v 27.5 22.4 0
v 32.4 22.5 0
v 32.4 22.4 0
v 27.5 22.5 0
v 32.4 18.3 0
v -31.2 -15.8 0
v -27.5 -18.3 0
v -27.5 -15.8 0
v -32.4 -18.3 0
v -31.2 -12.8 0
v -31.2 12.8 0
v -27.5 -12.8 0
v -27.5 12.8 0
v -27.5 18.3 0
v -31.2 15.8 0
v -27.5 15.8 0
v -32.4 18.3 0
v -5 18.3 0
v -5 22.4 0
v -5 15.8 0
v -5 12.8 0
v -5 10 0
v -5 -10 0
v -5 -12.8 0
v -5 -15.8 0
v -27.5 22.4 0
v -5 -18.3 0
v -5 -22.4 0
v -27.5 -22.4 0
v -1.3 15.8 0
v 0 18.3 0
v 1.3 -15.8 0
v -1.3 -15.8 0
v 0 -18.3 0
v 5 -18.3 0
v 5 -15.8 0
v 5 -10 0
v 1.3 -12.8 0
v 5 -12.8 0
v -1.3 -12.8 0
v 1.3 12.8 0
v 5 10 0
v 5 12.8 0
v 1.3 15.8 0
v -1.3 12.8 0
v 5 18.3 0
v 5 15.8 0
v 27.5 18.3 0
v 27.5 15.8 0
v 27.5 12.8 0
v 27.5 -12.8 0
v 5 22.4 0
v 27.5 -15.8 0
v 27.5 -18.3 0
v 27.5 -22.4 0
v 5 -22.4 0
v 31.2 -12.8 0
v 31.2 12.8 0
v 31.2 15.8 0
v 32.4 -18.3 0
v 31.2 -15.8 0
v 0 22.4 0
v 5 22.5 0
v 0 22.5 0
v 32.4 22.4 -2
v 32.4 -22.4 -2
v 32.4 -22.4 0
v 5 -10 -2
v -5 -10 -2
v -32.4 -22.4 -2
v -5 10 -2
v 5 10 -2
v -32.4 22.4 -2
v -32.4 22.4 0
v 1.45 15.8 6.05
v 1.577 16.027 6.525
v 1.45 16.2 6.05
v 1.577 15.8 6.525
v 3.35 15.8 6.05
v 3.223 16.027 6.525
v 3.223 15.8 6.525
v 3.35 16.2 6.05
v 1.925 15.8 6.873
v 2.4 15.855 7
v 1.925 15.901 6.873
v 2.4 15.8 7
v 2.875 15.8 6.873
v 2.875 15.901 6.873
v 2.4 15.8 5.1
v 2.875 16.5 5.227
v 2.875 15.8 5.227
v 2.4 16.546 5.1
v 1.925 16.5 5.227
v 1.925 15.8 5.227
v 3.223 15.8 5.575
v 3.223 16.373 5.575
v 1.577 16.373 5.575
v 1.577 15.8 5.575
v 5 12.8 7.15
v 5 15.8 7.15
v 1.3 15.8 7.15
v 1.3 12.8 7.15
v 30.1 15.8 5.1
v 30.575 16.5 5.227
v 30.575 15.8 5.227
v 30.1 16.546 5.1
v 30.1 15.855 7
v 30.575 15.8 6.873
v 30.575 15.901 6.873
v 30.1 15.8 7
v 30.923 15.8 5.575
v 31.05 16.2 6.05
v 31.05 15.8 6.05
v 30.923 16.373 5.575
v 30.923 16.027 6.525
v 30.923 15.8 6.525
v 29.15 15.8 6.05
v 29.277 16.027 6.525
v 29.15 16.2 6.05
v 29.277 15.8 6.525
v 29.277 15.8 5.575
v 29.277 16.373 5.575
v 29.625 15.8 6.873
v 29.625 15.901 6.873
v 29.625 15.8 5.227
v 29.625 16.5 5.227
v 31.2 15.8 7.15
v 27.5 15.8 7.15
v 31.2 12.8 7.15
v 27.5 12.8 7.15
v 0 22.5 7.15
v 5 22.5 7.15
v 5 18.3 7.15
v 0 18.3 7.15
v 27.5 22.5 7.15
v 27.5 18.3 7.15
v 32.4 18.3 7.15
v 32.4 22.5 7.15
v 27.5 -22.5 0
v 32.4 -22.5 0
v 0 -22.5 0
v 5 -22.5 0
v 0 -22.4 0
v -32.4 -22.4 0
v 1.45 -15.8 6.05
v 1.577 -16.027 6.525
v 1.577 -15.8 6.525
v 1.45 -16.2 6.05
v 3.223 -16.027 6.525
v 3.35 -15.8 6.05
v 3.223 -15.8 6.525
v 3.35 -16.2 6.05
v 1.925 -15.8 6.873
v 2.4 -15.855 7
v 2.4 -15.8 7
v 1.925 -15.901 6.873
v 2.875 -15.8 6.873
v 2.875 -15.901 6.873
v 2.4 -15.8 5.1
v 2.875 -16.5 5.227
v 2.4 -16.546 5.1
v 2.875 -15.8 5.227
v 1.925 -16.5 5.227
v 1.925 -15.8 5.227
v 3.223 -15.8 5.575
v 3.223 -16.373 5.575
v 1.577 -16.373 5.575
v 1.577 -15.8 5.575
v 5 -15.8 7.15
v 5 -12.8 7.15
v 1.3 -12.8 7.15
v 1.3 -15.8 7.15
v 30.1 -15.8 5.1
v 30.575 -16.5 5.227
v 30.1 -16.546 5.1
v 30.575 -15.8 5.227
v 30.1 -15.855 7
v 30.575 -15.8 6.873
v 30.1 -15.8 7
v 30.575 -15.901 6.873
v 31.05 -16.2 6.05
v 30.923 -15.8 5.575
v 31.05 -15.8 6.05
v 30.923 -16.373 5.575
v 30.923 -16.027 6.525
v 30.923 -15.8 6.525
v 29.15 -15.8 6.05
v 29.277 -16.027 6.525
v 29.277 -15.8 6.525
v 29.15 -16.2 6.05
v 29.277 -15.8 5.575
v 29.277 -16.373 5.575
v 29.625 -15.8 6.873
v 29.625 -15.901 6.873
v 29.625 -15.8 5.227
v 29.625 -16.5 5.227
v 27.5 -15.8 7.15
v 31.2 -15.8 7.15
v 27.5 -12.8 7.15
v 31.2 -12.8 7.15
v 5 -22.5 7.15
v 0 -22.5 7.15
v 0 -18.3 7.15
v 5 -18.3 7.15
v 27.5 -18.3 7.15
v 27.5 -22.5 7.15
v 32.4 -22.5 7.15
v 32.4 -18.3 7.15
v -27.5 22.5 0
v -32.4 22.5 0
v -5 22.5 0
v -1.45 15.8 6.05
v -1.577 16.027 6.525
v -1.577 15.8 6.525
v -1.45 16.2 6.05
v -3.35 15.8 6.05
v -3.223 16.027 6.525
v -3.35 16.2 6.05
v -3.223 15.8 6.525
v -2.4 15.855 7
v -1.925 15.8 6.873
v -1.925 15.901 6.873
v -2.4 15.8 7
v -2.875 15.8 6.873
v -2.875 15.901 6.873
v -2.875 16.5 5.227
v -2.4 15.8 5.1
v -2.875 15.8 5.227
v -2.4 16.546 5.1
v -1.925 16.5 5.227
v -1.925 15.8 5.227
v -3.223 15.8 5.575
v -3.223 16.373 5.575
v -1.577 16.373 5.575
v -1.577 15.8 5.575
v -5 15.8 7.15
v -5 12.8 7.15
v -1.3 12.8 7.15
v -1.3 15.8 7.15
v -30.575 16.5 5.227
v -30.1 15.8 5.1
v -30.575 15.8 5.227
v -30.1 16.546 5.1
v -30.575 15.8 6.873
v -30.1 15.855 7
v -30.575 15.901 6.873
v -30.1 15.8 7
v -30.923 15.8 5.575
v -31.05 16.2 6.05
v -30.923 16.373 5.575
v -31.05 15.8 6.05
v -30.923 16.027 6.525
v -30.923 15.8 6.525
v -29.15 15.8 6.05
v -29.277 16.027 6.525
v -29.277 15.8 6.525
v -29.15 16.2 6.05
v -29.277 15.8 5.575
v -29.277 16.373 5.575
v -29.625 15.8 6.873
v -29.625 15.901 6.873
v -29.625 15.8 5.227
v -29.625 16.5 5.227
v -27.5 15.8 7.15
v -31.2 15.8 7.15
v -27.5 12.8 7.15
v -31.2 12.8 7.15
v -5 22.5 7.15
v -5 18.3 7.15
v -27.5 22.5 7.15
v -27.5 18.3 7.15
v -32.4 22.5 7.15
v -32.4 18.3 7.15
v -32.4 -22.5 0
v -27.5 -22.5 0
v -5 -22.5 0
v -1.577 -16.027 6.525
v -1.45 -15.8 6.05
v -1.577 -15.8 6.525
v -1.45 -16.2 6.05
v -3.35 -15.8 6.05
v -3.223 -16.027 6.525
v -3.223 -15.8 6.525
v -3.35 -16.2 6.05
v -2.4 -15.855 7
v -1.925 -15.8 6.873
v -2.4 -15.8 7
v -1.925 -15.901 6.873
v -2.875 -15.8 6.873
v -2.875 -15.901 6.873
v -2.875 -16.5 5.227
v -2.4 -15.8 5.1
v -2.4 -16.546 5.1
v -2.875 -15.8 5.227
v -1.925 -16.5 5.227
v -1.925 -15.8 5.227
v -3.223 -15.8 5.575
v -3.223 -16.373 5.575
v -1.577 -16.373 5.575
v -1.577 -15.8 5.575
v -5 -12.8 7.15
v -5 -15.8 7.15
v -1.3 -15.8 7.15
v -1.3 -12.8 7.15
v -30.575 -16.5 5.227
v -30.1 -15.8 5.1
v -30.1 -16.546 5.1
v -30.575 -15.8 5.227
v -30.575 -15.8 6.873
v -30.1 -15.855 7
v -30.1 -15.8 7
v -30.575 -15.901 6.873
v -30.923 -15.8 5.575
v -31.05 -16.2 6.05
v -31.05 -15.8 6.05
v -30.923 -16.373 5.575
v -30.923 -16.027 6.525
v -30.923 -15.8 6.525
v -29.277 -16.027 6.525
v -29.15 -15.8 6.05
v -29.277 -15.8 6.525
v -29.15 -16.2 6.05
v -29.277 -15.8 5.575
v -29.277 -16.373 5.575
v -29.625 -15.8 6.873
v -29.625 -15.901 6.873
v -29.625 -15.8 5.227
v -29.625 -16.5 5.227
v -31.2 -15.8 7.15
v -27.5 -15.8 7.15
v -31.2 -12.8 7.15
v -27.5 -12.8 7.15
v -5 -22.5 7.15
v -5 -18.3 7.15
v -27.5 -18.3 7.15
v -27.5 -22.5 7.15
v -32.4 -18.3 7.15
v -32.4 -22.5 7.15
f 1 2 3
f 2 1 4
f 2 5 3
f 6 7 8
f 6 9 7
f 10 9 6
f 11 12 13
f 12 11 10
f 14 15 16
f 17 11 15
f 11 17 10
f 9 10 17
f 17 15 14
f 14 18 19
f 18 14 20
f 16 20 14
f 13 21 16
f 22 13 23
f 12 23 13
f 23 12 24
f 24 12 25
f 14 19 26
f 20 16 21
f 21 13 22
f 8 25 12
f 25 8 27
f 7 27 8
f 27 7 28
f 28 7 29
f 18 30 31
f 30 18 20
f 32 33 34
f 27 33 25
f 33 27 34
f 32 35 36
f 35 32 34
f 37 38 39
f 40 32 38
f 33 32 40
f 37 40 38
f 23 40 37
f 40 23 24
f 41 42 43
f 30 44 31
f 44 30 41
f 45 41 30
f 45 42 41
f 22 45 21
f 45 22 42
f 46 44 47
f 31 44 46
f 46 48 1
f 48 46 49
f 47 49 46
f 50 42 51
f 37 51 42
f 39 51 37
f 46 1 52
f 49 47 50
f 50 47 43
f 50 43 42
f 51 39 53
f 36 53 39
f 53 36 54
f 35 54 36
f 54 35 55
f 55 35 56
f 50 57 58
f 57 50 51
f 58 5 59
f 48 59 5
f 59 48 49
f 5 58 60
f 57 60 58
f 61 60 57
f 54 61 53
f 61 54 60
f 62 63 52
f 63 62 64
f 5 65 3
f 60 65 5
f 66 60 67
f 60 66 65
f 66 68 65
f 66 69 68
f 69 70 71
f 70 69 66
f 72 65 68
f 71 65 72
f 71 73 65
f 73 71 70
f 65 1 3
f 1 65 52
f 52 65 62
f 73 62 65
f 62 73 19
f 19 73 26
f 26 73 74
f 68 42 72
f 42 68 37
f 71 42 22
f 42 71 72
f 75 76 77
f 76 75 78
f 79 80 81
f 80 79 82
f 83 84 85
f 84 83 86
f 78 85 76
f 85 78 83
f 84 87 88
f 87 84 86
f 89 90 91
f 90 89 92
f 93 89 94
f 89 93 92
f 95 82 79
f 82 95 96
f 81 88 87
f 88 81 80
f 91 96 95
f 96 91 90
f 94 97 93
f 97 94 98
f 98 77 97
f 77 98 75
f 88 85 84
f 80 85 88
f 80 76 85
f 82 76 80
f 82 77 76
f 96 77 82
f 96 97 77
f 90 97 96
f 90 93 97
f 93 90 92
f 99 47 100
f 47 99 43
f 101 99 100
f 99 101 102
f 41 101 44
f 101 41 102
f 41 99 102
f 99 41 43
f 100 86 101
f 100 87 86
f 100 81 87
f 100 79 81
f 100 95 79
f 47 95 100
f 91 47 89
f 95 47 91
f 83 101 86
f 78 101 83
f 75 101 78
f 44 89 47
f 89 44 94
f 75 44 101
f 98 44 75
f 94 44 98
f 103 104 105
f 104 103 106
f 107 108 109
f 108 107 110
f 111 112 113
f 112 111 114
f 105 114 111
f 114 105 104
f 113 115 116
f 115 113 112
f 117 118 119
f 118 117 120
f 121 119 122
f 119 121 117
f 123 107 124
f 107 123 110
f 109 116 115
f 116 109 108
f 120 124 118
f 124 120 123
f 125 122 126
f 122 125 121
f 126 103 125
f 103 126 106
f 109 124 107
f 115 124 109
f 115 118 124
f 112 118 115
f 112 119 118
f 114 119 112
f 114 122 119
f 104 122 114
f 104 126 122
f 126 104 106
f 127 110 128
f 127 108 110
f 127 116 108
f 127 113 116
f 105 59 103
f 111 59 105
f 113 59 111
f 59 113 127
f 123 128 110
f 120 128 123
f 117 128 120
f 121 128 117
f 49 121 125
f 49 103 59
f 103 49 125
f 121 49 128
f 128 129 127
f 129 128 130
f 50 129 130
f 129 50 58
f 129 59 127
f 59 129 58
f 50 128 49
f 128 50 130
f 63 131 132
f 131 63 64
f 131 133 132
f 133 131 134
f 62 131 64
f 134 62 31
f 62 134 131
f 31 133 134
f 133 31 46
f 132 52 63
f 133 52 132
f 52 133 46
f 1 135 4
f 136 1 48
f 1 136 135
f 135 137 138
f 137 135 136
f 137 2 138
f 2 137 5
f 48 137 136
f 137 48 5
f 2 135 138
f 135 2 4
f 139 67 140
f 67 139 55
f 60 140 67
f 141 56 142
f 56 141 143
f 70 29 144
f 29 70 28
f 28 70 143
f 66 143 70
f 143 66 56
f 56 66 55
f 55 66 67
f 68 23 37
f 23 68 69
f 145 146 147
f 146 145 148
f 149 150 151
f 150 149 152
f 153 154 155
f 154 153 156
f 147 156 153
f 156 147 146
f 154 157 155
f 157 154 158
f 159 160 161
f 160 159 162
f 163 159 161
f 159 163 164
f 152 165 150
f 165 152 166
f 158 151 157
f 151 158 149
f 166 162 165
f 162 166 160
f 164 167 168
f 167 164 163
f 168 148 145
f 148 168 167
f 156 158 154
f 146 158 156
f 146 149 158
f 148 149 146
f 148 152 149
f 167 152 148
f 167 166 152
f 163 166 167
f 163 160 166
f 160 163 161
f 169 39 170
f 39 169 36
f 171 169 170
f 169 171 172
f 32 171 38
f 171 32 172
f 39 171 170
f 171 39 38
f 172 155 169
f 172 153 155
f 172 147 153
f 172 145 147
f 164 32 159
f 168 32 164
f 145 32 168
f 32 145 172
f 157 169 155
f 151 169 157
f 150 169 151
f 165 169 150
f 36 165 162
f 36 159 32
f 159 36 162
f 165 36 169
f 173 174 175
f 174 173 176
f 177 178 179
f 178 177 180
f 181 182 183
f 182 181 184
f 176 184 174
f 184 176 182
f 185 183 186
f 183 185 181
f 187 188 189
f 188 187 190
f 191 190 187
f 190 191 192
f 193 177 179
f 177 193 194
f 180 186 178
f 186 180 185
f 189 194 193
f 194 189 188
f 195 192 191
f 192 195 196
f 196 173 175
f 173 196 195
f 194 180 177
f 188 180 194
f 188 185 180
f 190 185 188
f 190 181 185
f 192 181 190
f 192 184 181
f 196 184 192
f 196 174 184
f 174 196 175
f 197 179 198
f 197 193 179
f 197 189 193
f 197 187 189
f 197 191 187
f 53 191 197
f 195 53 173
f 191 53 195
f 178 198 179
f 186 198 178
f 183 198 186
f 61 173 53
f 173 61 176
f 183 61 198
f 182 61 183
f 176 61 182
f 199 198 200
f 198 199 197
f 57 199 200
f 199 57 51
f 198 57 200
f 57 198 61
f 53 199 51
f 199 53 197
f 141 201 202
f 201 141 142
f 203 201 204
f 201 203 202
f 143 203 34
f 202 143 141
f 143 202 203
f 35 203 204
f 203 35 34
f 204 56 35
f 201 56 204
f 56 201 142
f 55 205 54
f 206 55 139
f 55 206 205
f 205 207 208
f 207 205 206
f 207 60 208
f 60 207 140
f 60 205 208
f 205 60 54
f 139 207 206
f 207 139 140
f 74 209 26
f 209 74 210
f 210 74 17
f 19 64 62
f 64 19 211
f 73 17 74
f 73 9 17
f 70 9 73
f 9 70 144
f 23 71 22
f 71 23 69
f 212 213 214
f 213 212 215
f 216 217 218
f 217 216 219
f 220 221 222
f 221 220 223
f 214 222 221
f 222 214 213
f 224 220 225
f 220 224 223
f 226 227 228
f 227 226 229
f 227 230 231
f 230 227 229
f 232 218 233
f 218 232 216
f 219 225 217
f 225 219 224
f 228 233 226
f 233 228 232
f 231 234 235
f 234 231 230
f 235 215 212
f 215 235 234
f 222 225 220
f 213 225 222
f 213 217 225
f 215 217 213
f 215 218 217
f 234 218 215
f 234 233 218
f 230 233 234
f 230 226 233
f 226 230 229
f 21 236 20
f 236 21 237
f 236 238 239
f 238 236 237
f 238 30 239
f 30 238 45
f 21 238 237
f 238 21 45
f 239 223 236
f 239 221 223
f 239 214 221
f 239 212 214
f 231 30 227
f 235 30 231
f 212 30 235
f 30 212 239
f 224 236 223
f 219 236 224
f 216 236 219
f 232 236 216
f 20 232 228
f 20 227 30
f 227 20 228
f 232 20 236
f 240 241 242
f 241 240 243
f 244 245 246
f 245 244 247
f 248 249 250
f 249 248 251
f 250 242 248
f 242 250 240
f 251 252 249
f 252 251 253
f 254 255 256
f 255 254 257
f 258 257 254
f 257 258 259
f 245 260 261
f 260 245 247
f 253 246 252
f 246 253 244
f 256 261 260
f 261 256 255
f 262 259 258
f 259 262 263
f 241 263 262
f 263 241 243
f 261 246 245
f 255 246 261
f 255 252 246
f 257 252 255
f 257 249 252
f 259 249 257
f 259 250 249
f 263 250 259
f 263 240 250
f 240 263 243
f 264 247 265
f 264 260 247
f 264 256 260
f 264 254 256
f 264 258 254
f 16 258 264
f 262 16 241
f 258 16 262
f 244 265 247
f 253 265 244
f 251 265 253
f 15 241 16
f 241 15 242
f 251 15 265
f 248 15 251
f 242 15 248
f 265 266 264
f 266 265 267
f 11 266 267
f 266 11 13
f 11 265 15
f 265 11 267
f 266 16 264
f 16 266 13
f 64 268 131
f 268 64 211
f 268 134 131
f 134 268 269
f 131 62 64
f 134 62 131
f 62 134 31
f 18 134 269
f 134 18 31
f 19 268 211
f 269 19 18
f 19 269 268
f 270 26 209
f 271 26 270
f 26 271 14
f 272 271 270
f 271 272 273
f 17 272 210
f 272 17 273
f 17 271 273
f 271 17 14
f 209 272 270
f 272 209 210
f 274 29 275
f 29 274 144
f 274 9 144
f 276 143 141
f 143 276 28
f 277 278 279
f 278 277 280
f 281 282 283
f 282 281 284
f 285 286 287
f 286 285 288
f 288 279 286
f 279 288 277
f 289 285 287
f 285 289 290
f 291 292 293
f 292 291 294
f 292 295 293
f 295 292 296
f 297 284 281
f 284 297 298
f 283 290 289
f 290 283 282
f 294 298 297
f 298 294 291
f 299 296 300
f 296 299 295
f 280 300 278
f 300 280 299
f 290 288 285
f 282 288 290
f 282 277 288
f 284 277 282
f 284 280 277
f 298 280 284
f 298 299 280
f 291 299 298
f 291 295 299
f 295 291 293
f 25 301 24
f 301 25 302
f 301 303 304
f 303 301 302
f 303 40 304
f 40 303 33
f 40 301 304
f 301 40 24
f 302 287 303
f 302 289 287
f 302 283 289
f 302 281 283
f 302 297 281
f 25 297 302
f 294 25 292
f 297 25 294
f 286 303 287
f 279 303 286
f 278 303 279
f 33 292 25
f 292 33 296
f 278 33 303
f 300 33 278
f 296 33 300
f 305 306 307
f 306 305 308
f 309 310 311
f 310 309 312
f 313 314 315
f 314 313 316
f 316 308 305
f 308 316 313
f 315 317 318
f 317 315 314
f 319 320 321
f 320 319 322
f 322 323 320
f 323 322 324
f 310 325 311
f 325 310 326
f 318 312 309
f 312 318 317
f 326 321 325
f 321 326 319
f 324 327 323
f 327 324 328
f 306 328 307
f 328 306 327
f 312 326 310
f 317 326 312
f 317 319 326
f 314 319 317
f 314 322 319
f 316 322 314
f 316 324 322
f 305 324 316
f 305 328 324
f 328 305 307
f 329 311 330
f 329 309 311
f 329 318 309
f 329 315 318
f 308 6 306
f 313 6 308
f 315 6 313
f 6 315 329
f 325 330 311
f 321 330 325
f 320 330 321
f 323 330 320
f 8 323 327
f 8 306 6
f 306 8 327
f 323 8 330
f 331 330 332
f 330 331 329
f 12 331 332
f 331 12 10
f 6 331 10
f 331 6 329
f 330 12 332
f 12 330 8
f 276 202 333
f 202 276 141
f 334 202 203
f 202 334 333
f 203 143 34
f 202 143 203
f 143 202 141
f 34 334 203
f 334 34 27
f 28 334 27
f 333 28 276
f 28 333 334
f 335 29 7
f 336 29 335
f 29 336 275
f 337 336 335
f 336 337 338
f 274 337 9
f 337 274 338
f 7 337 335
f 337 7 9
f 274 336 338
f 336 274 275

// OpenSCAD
$fs=.5;
module hold(hole){
	translate([0,0,-2])difference(){
		cube([32.4,22.4,2]);
		if(hole)translate([-1,-1,-1])cube([6,11,5]);
	}
	translate([4.9,0,0])translate([.1,.1,0]){
		translate([0,15.7,0]){
			rotate(180)union(){
				cube([3.7,3,7.15]);
				translate([2.6,0,6.05])rotate([90,0,0])difference(){
					cylinder(d=1.9,h=2,center=true);
					translate([-1.1,1.1,0])rotate([70,0,0])cube([2.2,2.2,5]);
				}
			}
			translate([22.5,0,0])rotate(-90)union(){
				cube([3,3.7,7.15]);
				translate([0,2.6,6.05])rotate([0,90,0])difference(){
					cylinder(d=1.9,h=2,center=true);
					translate([-1.1,-1.1,0])rotate([0,110,0])cube([2.2,2.2,5]);
				}
			}
			translate([0,2.5,0]){
				rotate(90)cube([4.2,5,7.15]);
				translate([22.5,0,0])rotate(0)cube([4.9,4.2,7.15]);
			}
			
		}
	}
}
module x4(x){hold(x);scale([1,-1,1])hold(x);scale([-1,1,1])hold(x);scale([-1,-1,1])hold(x);}

x4(1);//translate([0,50,0])x4(1);
